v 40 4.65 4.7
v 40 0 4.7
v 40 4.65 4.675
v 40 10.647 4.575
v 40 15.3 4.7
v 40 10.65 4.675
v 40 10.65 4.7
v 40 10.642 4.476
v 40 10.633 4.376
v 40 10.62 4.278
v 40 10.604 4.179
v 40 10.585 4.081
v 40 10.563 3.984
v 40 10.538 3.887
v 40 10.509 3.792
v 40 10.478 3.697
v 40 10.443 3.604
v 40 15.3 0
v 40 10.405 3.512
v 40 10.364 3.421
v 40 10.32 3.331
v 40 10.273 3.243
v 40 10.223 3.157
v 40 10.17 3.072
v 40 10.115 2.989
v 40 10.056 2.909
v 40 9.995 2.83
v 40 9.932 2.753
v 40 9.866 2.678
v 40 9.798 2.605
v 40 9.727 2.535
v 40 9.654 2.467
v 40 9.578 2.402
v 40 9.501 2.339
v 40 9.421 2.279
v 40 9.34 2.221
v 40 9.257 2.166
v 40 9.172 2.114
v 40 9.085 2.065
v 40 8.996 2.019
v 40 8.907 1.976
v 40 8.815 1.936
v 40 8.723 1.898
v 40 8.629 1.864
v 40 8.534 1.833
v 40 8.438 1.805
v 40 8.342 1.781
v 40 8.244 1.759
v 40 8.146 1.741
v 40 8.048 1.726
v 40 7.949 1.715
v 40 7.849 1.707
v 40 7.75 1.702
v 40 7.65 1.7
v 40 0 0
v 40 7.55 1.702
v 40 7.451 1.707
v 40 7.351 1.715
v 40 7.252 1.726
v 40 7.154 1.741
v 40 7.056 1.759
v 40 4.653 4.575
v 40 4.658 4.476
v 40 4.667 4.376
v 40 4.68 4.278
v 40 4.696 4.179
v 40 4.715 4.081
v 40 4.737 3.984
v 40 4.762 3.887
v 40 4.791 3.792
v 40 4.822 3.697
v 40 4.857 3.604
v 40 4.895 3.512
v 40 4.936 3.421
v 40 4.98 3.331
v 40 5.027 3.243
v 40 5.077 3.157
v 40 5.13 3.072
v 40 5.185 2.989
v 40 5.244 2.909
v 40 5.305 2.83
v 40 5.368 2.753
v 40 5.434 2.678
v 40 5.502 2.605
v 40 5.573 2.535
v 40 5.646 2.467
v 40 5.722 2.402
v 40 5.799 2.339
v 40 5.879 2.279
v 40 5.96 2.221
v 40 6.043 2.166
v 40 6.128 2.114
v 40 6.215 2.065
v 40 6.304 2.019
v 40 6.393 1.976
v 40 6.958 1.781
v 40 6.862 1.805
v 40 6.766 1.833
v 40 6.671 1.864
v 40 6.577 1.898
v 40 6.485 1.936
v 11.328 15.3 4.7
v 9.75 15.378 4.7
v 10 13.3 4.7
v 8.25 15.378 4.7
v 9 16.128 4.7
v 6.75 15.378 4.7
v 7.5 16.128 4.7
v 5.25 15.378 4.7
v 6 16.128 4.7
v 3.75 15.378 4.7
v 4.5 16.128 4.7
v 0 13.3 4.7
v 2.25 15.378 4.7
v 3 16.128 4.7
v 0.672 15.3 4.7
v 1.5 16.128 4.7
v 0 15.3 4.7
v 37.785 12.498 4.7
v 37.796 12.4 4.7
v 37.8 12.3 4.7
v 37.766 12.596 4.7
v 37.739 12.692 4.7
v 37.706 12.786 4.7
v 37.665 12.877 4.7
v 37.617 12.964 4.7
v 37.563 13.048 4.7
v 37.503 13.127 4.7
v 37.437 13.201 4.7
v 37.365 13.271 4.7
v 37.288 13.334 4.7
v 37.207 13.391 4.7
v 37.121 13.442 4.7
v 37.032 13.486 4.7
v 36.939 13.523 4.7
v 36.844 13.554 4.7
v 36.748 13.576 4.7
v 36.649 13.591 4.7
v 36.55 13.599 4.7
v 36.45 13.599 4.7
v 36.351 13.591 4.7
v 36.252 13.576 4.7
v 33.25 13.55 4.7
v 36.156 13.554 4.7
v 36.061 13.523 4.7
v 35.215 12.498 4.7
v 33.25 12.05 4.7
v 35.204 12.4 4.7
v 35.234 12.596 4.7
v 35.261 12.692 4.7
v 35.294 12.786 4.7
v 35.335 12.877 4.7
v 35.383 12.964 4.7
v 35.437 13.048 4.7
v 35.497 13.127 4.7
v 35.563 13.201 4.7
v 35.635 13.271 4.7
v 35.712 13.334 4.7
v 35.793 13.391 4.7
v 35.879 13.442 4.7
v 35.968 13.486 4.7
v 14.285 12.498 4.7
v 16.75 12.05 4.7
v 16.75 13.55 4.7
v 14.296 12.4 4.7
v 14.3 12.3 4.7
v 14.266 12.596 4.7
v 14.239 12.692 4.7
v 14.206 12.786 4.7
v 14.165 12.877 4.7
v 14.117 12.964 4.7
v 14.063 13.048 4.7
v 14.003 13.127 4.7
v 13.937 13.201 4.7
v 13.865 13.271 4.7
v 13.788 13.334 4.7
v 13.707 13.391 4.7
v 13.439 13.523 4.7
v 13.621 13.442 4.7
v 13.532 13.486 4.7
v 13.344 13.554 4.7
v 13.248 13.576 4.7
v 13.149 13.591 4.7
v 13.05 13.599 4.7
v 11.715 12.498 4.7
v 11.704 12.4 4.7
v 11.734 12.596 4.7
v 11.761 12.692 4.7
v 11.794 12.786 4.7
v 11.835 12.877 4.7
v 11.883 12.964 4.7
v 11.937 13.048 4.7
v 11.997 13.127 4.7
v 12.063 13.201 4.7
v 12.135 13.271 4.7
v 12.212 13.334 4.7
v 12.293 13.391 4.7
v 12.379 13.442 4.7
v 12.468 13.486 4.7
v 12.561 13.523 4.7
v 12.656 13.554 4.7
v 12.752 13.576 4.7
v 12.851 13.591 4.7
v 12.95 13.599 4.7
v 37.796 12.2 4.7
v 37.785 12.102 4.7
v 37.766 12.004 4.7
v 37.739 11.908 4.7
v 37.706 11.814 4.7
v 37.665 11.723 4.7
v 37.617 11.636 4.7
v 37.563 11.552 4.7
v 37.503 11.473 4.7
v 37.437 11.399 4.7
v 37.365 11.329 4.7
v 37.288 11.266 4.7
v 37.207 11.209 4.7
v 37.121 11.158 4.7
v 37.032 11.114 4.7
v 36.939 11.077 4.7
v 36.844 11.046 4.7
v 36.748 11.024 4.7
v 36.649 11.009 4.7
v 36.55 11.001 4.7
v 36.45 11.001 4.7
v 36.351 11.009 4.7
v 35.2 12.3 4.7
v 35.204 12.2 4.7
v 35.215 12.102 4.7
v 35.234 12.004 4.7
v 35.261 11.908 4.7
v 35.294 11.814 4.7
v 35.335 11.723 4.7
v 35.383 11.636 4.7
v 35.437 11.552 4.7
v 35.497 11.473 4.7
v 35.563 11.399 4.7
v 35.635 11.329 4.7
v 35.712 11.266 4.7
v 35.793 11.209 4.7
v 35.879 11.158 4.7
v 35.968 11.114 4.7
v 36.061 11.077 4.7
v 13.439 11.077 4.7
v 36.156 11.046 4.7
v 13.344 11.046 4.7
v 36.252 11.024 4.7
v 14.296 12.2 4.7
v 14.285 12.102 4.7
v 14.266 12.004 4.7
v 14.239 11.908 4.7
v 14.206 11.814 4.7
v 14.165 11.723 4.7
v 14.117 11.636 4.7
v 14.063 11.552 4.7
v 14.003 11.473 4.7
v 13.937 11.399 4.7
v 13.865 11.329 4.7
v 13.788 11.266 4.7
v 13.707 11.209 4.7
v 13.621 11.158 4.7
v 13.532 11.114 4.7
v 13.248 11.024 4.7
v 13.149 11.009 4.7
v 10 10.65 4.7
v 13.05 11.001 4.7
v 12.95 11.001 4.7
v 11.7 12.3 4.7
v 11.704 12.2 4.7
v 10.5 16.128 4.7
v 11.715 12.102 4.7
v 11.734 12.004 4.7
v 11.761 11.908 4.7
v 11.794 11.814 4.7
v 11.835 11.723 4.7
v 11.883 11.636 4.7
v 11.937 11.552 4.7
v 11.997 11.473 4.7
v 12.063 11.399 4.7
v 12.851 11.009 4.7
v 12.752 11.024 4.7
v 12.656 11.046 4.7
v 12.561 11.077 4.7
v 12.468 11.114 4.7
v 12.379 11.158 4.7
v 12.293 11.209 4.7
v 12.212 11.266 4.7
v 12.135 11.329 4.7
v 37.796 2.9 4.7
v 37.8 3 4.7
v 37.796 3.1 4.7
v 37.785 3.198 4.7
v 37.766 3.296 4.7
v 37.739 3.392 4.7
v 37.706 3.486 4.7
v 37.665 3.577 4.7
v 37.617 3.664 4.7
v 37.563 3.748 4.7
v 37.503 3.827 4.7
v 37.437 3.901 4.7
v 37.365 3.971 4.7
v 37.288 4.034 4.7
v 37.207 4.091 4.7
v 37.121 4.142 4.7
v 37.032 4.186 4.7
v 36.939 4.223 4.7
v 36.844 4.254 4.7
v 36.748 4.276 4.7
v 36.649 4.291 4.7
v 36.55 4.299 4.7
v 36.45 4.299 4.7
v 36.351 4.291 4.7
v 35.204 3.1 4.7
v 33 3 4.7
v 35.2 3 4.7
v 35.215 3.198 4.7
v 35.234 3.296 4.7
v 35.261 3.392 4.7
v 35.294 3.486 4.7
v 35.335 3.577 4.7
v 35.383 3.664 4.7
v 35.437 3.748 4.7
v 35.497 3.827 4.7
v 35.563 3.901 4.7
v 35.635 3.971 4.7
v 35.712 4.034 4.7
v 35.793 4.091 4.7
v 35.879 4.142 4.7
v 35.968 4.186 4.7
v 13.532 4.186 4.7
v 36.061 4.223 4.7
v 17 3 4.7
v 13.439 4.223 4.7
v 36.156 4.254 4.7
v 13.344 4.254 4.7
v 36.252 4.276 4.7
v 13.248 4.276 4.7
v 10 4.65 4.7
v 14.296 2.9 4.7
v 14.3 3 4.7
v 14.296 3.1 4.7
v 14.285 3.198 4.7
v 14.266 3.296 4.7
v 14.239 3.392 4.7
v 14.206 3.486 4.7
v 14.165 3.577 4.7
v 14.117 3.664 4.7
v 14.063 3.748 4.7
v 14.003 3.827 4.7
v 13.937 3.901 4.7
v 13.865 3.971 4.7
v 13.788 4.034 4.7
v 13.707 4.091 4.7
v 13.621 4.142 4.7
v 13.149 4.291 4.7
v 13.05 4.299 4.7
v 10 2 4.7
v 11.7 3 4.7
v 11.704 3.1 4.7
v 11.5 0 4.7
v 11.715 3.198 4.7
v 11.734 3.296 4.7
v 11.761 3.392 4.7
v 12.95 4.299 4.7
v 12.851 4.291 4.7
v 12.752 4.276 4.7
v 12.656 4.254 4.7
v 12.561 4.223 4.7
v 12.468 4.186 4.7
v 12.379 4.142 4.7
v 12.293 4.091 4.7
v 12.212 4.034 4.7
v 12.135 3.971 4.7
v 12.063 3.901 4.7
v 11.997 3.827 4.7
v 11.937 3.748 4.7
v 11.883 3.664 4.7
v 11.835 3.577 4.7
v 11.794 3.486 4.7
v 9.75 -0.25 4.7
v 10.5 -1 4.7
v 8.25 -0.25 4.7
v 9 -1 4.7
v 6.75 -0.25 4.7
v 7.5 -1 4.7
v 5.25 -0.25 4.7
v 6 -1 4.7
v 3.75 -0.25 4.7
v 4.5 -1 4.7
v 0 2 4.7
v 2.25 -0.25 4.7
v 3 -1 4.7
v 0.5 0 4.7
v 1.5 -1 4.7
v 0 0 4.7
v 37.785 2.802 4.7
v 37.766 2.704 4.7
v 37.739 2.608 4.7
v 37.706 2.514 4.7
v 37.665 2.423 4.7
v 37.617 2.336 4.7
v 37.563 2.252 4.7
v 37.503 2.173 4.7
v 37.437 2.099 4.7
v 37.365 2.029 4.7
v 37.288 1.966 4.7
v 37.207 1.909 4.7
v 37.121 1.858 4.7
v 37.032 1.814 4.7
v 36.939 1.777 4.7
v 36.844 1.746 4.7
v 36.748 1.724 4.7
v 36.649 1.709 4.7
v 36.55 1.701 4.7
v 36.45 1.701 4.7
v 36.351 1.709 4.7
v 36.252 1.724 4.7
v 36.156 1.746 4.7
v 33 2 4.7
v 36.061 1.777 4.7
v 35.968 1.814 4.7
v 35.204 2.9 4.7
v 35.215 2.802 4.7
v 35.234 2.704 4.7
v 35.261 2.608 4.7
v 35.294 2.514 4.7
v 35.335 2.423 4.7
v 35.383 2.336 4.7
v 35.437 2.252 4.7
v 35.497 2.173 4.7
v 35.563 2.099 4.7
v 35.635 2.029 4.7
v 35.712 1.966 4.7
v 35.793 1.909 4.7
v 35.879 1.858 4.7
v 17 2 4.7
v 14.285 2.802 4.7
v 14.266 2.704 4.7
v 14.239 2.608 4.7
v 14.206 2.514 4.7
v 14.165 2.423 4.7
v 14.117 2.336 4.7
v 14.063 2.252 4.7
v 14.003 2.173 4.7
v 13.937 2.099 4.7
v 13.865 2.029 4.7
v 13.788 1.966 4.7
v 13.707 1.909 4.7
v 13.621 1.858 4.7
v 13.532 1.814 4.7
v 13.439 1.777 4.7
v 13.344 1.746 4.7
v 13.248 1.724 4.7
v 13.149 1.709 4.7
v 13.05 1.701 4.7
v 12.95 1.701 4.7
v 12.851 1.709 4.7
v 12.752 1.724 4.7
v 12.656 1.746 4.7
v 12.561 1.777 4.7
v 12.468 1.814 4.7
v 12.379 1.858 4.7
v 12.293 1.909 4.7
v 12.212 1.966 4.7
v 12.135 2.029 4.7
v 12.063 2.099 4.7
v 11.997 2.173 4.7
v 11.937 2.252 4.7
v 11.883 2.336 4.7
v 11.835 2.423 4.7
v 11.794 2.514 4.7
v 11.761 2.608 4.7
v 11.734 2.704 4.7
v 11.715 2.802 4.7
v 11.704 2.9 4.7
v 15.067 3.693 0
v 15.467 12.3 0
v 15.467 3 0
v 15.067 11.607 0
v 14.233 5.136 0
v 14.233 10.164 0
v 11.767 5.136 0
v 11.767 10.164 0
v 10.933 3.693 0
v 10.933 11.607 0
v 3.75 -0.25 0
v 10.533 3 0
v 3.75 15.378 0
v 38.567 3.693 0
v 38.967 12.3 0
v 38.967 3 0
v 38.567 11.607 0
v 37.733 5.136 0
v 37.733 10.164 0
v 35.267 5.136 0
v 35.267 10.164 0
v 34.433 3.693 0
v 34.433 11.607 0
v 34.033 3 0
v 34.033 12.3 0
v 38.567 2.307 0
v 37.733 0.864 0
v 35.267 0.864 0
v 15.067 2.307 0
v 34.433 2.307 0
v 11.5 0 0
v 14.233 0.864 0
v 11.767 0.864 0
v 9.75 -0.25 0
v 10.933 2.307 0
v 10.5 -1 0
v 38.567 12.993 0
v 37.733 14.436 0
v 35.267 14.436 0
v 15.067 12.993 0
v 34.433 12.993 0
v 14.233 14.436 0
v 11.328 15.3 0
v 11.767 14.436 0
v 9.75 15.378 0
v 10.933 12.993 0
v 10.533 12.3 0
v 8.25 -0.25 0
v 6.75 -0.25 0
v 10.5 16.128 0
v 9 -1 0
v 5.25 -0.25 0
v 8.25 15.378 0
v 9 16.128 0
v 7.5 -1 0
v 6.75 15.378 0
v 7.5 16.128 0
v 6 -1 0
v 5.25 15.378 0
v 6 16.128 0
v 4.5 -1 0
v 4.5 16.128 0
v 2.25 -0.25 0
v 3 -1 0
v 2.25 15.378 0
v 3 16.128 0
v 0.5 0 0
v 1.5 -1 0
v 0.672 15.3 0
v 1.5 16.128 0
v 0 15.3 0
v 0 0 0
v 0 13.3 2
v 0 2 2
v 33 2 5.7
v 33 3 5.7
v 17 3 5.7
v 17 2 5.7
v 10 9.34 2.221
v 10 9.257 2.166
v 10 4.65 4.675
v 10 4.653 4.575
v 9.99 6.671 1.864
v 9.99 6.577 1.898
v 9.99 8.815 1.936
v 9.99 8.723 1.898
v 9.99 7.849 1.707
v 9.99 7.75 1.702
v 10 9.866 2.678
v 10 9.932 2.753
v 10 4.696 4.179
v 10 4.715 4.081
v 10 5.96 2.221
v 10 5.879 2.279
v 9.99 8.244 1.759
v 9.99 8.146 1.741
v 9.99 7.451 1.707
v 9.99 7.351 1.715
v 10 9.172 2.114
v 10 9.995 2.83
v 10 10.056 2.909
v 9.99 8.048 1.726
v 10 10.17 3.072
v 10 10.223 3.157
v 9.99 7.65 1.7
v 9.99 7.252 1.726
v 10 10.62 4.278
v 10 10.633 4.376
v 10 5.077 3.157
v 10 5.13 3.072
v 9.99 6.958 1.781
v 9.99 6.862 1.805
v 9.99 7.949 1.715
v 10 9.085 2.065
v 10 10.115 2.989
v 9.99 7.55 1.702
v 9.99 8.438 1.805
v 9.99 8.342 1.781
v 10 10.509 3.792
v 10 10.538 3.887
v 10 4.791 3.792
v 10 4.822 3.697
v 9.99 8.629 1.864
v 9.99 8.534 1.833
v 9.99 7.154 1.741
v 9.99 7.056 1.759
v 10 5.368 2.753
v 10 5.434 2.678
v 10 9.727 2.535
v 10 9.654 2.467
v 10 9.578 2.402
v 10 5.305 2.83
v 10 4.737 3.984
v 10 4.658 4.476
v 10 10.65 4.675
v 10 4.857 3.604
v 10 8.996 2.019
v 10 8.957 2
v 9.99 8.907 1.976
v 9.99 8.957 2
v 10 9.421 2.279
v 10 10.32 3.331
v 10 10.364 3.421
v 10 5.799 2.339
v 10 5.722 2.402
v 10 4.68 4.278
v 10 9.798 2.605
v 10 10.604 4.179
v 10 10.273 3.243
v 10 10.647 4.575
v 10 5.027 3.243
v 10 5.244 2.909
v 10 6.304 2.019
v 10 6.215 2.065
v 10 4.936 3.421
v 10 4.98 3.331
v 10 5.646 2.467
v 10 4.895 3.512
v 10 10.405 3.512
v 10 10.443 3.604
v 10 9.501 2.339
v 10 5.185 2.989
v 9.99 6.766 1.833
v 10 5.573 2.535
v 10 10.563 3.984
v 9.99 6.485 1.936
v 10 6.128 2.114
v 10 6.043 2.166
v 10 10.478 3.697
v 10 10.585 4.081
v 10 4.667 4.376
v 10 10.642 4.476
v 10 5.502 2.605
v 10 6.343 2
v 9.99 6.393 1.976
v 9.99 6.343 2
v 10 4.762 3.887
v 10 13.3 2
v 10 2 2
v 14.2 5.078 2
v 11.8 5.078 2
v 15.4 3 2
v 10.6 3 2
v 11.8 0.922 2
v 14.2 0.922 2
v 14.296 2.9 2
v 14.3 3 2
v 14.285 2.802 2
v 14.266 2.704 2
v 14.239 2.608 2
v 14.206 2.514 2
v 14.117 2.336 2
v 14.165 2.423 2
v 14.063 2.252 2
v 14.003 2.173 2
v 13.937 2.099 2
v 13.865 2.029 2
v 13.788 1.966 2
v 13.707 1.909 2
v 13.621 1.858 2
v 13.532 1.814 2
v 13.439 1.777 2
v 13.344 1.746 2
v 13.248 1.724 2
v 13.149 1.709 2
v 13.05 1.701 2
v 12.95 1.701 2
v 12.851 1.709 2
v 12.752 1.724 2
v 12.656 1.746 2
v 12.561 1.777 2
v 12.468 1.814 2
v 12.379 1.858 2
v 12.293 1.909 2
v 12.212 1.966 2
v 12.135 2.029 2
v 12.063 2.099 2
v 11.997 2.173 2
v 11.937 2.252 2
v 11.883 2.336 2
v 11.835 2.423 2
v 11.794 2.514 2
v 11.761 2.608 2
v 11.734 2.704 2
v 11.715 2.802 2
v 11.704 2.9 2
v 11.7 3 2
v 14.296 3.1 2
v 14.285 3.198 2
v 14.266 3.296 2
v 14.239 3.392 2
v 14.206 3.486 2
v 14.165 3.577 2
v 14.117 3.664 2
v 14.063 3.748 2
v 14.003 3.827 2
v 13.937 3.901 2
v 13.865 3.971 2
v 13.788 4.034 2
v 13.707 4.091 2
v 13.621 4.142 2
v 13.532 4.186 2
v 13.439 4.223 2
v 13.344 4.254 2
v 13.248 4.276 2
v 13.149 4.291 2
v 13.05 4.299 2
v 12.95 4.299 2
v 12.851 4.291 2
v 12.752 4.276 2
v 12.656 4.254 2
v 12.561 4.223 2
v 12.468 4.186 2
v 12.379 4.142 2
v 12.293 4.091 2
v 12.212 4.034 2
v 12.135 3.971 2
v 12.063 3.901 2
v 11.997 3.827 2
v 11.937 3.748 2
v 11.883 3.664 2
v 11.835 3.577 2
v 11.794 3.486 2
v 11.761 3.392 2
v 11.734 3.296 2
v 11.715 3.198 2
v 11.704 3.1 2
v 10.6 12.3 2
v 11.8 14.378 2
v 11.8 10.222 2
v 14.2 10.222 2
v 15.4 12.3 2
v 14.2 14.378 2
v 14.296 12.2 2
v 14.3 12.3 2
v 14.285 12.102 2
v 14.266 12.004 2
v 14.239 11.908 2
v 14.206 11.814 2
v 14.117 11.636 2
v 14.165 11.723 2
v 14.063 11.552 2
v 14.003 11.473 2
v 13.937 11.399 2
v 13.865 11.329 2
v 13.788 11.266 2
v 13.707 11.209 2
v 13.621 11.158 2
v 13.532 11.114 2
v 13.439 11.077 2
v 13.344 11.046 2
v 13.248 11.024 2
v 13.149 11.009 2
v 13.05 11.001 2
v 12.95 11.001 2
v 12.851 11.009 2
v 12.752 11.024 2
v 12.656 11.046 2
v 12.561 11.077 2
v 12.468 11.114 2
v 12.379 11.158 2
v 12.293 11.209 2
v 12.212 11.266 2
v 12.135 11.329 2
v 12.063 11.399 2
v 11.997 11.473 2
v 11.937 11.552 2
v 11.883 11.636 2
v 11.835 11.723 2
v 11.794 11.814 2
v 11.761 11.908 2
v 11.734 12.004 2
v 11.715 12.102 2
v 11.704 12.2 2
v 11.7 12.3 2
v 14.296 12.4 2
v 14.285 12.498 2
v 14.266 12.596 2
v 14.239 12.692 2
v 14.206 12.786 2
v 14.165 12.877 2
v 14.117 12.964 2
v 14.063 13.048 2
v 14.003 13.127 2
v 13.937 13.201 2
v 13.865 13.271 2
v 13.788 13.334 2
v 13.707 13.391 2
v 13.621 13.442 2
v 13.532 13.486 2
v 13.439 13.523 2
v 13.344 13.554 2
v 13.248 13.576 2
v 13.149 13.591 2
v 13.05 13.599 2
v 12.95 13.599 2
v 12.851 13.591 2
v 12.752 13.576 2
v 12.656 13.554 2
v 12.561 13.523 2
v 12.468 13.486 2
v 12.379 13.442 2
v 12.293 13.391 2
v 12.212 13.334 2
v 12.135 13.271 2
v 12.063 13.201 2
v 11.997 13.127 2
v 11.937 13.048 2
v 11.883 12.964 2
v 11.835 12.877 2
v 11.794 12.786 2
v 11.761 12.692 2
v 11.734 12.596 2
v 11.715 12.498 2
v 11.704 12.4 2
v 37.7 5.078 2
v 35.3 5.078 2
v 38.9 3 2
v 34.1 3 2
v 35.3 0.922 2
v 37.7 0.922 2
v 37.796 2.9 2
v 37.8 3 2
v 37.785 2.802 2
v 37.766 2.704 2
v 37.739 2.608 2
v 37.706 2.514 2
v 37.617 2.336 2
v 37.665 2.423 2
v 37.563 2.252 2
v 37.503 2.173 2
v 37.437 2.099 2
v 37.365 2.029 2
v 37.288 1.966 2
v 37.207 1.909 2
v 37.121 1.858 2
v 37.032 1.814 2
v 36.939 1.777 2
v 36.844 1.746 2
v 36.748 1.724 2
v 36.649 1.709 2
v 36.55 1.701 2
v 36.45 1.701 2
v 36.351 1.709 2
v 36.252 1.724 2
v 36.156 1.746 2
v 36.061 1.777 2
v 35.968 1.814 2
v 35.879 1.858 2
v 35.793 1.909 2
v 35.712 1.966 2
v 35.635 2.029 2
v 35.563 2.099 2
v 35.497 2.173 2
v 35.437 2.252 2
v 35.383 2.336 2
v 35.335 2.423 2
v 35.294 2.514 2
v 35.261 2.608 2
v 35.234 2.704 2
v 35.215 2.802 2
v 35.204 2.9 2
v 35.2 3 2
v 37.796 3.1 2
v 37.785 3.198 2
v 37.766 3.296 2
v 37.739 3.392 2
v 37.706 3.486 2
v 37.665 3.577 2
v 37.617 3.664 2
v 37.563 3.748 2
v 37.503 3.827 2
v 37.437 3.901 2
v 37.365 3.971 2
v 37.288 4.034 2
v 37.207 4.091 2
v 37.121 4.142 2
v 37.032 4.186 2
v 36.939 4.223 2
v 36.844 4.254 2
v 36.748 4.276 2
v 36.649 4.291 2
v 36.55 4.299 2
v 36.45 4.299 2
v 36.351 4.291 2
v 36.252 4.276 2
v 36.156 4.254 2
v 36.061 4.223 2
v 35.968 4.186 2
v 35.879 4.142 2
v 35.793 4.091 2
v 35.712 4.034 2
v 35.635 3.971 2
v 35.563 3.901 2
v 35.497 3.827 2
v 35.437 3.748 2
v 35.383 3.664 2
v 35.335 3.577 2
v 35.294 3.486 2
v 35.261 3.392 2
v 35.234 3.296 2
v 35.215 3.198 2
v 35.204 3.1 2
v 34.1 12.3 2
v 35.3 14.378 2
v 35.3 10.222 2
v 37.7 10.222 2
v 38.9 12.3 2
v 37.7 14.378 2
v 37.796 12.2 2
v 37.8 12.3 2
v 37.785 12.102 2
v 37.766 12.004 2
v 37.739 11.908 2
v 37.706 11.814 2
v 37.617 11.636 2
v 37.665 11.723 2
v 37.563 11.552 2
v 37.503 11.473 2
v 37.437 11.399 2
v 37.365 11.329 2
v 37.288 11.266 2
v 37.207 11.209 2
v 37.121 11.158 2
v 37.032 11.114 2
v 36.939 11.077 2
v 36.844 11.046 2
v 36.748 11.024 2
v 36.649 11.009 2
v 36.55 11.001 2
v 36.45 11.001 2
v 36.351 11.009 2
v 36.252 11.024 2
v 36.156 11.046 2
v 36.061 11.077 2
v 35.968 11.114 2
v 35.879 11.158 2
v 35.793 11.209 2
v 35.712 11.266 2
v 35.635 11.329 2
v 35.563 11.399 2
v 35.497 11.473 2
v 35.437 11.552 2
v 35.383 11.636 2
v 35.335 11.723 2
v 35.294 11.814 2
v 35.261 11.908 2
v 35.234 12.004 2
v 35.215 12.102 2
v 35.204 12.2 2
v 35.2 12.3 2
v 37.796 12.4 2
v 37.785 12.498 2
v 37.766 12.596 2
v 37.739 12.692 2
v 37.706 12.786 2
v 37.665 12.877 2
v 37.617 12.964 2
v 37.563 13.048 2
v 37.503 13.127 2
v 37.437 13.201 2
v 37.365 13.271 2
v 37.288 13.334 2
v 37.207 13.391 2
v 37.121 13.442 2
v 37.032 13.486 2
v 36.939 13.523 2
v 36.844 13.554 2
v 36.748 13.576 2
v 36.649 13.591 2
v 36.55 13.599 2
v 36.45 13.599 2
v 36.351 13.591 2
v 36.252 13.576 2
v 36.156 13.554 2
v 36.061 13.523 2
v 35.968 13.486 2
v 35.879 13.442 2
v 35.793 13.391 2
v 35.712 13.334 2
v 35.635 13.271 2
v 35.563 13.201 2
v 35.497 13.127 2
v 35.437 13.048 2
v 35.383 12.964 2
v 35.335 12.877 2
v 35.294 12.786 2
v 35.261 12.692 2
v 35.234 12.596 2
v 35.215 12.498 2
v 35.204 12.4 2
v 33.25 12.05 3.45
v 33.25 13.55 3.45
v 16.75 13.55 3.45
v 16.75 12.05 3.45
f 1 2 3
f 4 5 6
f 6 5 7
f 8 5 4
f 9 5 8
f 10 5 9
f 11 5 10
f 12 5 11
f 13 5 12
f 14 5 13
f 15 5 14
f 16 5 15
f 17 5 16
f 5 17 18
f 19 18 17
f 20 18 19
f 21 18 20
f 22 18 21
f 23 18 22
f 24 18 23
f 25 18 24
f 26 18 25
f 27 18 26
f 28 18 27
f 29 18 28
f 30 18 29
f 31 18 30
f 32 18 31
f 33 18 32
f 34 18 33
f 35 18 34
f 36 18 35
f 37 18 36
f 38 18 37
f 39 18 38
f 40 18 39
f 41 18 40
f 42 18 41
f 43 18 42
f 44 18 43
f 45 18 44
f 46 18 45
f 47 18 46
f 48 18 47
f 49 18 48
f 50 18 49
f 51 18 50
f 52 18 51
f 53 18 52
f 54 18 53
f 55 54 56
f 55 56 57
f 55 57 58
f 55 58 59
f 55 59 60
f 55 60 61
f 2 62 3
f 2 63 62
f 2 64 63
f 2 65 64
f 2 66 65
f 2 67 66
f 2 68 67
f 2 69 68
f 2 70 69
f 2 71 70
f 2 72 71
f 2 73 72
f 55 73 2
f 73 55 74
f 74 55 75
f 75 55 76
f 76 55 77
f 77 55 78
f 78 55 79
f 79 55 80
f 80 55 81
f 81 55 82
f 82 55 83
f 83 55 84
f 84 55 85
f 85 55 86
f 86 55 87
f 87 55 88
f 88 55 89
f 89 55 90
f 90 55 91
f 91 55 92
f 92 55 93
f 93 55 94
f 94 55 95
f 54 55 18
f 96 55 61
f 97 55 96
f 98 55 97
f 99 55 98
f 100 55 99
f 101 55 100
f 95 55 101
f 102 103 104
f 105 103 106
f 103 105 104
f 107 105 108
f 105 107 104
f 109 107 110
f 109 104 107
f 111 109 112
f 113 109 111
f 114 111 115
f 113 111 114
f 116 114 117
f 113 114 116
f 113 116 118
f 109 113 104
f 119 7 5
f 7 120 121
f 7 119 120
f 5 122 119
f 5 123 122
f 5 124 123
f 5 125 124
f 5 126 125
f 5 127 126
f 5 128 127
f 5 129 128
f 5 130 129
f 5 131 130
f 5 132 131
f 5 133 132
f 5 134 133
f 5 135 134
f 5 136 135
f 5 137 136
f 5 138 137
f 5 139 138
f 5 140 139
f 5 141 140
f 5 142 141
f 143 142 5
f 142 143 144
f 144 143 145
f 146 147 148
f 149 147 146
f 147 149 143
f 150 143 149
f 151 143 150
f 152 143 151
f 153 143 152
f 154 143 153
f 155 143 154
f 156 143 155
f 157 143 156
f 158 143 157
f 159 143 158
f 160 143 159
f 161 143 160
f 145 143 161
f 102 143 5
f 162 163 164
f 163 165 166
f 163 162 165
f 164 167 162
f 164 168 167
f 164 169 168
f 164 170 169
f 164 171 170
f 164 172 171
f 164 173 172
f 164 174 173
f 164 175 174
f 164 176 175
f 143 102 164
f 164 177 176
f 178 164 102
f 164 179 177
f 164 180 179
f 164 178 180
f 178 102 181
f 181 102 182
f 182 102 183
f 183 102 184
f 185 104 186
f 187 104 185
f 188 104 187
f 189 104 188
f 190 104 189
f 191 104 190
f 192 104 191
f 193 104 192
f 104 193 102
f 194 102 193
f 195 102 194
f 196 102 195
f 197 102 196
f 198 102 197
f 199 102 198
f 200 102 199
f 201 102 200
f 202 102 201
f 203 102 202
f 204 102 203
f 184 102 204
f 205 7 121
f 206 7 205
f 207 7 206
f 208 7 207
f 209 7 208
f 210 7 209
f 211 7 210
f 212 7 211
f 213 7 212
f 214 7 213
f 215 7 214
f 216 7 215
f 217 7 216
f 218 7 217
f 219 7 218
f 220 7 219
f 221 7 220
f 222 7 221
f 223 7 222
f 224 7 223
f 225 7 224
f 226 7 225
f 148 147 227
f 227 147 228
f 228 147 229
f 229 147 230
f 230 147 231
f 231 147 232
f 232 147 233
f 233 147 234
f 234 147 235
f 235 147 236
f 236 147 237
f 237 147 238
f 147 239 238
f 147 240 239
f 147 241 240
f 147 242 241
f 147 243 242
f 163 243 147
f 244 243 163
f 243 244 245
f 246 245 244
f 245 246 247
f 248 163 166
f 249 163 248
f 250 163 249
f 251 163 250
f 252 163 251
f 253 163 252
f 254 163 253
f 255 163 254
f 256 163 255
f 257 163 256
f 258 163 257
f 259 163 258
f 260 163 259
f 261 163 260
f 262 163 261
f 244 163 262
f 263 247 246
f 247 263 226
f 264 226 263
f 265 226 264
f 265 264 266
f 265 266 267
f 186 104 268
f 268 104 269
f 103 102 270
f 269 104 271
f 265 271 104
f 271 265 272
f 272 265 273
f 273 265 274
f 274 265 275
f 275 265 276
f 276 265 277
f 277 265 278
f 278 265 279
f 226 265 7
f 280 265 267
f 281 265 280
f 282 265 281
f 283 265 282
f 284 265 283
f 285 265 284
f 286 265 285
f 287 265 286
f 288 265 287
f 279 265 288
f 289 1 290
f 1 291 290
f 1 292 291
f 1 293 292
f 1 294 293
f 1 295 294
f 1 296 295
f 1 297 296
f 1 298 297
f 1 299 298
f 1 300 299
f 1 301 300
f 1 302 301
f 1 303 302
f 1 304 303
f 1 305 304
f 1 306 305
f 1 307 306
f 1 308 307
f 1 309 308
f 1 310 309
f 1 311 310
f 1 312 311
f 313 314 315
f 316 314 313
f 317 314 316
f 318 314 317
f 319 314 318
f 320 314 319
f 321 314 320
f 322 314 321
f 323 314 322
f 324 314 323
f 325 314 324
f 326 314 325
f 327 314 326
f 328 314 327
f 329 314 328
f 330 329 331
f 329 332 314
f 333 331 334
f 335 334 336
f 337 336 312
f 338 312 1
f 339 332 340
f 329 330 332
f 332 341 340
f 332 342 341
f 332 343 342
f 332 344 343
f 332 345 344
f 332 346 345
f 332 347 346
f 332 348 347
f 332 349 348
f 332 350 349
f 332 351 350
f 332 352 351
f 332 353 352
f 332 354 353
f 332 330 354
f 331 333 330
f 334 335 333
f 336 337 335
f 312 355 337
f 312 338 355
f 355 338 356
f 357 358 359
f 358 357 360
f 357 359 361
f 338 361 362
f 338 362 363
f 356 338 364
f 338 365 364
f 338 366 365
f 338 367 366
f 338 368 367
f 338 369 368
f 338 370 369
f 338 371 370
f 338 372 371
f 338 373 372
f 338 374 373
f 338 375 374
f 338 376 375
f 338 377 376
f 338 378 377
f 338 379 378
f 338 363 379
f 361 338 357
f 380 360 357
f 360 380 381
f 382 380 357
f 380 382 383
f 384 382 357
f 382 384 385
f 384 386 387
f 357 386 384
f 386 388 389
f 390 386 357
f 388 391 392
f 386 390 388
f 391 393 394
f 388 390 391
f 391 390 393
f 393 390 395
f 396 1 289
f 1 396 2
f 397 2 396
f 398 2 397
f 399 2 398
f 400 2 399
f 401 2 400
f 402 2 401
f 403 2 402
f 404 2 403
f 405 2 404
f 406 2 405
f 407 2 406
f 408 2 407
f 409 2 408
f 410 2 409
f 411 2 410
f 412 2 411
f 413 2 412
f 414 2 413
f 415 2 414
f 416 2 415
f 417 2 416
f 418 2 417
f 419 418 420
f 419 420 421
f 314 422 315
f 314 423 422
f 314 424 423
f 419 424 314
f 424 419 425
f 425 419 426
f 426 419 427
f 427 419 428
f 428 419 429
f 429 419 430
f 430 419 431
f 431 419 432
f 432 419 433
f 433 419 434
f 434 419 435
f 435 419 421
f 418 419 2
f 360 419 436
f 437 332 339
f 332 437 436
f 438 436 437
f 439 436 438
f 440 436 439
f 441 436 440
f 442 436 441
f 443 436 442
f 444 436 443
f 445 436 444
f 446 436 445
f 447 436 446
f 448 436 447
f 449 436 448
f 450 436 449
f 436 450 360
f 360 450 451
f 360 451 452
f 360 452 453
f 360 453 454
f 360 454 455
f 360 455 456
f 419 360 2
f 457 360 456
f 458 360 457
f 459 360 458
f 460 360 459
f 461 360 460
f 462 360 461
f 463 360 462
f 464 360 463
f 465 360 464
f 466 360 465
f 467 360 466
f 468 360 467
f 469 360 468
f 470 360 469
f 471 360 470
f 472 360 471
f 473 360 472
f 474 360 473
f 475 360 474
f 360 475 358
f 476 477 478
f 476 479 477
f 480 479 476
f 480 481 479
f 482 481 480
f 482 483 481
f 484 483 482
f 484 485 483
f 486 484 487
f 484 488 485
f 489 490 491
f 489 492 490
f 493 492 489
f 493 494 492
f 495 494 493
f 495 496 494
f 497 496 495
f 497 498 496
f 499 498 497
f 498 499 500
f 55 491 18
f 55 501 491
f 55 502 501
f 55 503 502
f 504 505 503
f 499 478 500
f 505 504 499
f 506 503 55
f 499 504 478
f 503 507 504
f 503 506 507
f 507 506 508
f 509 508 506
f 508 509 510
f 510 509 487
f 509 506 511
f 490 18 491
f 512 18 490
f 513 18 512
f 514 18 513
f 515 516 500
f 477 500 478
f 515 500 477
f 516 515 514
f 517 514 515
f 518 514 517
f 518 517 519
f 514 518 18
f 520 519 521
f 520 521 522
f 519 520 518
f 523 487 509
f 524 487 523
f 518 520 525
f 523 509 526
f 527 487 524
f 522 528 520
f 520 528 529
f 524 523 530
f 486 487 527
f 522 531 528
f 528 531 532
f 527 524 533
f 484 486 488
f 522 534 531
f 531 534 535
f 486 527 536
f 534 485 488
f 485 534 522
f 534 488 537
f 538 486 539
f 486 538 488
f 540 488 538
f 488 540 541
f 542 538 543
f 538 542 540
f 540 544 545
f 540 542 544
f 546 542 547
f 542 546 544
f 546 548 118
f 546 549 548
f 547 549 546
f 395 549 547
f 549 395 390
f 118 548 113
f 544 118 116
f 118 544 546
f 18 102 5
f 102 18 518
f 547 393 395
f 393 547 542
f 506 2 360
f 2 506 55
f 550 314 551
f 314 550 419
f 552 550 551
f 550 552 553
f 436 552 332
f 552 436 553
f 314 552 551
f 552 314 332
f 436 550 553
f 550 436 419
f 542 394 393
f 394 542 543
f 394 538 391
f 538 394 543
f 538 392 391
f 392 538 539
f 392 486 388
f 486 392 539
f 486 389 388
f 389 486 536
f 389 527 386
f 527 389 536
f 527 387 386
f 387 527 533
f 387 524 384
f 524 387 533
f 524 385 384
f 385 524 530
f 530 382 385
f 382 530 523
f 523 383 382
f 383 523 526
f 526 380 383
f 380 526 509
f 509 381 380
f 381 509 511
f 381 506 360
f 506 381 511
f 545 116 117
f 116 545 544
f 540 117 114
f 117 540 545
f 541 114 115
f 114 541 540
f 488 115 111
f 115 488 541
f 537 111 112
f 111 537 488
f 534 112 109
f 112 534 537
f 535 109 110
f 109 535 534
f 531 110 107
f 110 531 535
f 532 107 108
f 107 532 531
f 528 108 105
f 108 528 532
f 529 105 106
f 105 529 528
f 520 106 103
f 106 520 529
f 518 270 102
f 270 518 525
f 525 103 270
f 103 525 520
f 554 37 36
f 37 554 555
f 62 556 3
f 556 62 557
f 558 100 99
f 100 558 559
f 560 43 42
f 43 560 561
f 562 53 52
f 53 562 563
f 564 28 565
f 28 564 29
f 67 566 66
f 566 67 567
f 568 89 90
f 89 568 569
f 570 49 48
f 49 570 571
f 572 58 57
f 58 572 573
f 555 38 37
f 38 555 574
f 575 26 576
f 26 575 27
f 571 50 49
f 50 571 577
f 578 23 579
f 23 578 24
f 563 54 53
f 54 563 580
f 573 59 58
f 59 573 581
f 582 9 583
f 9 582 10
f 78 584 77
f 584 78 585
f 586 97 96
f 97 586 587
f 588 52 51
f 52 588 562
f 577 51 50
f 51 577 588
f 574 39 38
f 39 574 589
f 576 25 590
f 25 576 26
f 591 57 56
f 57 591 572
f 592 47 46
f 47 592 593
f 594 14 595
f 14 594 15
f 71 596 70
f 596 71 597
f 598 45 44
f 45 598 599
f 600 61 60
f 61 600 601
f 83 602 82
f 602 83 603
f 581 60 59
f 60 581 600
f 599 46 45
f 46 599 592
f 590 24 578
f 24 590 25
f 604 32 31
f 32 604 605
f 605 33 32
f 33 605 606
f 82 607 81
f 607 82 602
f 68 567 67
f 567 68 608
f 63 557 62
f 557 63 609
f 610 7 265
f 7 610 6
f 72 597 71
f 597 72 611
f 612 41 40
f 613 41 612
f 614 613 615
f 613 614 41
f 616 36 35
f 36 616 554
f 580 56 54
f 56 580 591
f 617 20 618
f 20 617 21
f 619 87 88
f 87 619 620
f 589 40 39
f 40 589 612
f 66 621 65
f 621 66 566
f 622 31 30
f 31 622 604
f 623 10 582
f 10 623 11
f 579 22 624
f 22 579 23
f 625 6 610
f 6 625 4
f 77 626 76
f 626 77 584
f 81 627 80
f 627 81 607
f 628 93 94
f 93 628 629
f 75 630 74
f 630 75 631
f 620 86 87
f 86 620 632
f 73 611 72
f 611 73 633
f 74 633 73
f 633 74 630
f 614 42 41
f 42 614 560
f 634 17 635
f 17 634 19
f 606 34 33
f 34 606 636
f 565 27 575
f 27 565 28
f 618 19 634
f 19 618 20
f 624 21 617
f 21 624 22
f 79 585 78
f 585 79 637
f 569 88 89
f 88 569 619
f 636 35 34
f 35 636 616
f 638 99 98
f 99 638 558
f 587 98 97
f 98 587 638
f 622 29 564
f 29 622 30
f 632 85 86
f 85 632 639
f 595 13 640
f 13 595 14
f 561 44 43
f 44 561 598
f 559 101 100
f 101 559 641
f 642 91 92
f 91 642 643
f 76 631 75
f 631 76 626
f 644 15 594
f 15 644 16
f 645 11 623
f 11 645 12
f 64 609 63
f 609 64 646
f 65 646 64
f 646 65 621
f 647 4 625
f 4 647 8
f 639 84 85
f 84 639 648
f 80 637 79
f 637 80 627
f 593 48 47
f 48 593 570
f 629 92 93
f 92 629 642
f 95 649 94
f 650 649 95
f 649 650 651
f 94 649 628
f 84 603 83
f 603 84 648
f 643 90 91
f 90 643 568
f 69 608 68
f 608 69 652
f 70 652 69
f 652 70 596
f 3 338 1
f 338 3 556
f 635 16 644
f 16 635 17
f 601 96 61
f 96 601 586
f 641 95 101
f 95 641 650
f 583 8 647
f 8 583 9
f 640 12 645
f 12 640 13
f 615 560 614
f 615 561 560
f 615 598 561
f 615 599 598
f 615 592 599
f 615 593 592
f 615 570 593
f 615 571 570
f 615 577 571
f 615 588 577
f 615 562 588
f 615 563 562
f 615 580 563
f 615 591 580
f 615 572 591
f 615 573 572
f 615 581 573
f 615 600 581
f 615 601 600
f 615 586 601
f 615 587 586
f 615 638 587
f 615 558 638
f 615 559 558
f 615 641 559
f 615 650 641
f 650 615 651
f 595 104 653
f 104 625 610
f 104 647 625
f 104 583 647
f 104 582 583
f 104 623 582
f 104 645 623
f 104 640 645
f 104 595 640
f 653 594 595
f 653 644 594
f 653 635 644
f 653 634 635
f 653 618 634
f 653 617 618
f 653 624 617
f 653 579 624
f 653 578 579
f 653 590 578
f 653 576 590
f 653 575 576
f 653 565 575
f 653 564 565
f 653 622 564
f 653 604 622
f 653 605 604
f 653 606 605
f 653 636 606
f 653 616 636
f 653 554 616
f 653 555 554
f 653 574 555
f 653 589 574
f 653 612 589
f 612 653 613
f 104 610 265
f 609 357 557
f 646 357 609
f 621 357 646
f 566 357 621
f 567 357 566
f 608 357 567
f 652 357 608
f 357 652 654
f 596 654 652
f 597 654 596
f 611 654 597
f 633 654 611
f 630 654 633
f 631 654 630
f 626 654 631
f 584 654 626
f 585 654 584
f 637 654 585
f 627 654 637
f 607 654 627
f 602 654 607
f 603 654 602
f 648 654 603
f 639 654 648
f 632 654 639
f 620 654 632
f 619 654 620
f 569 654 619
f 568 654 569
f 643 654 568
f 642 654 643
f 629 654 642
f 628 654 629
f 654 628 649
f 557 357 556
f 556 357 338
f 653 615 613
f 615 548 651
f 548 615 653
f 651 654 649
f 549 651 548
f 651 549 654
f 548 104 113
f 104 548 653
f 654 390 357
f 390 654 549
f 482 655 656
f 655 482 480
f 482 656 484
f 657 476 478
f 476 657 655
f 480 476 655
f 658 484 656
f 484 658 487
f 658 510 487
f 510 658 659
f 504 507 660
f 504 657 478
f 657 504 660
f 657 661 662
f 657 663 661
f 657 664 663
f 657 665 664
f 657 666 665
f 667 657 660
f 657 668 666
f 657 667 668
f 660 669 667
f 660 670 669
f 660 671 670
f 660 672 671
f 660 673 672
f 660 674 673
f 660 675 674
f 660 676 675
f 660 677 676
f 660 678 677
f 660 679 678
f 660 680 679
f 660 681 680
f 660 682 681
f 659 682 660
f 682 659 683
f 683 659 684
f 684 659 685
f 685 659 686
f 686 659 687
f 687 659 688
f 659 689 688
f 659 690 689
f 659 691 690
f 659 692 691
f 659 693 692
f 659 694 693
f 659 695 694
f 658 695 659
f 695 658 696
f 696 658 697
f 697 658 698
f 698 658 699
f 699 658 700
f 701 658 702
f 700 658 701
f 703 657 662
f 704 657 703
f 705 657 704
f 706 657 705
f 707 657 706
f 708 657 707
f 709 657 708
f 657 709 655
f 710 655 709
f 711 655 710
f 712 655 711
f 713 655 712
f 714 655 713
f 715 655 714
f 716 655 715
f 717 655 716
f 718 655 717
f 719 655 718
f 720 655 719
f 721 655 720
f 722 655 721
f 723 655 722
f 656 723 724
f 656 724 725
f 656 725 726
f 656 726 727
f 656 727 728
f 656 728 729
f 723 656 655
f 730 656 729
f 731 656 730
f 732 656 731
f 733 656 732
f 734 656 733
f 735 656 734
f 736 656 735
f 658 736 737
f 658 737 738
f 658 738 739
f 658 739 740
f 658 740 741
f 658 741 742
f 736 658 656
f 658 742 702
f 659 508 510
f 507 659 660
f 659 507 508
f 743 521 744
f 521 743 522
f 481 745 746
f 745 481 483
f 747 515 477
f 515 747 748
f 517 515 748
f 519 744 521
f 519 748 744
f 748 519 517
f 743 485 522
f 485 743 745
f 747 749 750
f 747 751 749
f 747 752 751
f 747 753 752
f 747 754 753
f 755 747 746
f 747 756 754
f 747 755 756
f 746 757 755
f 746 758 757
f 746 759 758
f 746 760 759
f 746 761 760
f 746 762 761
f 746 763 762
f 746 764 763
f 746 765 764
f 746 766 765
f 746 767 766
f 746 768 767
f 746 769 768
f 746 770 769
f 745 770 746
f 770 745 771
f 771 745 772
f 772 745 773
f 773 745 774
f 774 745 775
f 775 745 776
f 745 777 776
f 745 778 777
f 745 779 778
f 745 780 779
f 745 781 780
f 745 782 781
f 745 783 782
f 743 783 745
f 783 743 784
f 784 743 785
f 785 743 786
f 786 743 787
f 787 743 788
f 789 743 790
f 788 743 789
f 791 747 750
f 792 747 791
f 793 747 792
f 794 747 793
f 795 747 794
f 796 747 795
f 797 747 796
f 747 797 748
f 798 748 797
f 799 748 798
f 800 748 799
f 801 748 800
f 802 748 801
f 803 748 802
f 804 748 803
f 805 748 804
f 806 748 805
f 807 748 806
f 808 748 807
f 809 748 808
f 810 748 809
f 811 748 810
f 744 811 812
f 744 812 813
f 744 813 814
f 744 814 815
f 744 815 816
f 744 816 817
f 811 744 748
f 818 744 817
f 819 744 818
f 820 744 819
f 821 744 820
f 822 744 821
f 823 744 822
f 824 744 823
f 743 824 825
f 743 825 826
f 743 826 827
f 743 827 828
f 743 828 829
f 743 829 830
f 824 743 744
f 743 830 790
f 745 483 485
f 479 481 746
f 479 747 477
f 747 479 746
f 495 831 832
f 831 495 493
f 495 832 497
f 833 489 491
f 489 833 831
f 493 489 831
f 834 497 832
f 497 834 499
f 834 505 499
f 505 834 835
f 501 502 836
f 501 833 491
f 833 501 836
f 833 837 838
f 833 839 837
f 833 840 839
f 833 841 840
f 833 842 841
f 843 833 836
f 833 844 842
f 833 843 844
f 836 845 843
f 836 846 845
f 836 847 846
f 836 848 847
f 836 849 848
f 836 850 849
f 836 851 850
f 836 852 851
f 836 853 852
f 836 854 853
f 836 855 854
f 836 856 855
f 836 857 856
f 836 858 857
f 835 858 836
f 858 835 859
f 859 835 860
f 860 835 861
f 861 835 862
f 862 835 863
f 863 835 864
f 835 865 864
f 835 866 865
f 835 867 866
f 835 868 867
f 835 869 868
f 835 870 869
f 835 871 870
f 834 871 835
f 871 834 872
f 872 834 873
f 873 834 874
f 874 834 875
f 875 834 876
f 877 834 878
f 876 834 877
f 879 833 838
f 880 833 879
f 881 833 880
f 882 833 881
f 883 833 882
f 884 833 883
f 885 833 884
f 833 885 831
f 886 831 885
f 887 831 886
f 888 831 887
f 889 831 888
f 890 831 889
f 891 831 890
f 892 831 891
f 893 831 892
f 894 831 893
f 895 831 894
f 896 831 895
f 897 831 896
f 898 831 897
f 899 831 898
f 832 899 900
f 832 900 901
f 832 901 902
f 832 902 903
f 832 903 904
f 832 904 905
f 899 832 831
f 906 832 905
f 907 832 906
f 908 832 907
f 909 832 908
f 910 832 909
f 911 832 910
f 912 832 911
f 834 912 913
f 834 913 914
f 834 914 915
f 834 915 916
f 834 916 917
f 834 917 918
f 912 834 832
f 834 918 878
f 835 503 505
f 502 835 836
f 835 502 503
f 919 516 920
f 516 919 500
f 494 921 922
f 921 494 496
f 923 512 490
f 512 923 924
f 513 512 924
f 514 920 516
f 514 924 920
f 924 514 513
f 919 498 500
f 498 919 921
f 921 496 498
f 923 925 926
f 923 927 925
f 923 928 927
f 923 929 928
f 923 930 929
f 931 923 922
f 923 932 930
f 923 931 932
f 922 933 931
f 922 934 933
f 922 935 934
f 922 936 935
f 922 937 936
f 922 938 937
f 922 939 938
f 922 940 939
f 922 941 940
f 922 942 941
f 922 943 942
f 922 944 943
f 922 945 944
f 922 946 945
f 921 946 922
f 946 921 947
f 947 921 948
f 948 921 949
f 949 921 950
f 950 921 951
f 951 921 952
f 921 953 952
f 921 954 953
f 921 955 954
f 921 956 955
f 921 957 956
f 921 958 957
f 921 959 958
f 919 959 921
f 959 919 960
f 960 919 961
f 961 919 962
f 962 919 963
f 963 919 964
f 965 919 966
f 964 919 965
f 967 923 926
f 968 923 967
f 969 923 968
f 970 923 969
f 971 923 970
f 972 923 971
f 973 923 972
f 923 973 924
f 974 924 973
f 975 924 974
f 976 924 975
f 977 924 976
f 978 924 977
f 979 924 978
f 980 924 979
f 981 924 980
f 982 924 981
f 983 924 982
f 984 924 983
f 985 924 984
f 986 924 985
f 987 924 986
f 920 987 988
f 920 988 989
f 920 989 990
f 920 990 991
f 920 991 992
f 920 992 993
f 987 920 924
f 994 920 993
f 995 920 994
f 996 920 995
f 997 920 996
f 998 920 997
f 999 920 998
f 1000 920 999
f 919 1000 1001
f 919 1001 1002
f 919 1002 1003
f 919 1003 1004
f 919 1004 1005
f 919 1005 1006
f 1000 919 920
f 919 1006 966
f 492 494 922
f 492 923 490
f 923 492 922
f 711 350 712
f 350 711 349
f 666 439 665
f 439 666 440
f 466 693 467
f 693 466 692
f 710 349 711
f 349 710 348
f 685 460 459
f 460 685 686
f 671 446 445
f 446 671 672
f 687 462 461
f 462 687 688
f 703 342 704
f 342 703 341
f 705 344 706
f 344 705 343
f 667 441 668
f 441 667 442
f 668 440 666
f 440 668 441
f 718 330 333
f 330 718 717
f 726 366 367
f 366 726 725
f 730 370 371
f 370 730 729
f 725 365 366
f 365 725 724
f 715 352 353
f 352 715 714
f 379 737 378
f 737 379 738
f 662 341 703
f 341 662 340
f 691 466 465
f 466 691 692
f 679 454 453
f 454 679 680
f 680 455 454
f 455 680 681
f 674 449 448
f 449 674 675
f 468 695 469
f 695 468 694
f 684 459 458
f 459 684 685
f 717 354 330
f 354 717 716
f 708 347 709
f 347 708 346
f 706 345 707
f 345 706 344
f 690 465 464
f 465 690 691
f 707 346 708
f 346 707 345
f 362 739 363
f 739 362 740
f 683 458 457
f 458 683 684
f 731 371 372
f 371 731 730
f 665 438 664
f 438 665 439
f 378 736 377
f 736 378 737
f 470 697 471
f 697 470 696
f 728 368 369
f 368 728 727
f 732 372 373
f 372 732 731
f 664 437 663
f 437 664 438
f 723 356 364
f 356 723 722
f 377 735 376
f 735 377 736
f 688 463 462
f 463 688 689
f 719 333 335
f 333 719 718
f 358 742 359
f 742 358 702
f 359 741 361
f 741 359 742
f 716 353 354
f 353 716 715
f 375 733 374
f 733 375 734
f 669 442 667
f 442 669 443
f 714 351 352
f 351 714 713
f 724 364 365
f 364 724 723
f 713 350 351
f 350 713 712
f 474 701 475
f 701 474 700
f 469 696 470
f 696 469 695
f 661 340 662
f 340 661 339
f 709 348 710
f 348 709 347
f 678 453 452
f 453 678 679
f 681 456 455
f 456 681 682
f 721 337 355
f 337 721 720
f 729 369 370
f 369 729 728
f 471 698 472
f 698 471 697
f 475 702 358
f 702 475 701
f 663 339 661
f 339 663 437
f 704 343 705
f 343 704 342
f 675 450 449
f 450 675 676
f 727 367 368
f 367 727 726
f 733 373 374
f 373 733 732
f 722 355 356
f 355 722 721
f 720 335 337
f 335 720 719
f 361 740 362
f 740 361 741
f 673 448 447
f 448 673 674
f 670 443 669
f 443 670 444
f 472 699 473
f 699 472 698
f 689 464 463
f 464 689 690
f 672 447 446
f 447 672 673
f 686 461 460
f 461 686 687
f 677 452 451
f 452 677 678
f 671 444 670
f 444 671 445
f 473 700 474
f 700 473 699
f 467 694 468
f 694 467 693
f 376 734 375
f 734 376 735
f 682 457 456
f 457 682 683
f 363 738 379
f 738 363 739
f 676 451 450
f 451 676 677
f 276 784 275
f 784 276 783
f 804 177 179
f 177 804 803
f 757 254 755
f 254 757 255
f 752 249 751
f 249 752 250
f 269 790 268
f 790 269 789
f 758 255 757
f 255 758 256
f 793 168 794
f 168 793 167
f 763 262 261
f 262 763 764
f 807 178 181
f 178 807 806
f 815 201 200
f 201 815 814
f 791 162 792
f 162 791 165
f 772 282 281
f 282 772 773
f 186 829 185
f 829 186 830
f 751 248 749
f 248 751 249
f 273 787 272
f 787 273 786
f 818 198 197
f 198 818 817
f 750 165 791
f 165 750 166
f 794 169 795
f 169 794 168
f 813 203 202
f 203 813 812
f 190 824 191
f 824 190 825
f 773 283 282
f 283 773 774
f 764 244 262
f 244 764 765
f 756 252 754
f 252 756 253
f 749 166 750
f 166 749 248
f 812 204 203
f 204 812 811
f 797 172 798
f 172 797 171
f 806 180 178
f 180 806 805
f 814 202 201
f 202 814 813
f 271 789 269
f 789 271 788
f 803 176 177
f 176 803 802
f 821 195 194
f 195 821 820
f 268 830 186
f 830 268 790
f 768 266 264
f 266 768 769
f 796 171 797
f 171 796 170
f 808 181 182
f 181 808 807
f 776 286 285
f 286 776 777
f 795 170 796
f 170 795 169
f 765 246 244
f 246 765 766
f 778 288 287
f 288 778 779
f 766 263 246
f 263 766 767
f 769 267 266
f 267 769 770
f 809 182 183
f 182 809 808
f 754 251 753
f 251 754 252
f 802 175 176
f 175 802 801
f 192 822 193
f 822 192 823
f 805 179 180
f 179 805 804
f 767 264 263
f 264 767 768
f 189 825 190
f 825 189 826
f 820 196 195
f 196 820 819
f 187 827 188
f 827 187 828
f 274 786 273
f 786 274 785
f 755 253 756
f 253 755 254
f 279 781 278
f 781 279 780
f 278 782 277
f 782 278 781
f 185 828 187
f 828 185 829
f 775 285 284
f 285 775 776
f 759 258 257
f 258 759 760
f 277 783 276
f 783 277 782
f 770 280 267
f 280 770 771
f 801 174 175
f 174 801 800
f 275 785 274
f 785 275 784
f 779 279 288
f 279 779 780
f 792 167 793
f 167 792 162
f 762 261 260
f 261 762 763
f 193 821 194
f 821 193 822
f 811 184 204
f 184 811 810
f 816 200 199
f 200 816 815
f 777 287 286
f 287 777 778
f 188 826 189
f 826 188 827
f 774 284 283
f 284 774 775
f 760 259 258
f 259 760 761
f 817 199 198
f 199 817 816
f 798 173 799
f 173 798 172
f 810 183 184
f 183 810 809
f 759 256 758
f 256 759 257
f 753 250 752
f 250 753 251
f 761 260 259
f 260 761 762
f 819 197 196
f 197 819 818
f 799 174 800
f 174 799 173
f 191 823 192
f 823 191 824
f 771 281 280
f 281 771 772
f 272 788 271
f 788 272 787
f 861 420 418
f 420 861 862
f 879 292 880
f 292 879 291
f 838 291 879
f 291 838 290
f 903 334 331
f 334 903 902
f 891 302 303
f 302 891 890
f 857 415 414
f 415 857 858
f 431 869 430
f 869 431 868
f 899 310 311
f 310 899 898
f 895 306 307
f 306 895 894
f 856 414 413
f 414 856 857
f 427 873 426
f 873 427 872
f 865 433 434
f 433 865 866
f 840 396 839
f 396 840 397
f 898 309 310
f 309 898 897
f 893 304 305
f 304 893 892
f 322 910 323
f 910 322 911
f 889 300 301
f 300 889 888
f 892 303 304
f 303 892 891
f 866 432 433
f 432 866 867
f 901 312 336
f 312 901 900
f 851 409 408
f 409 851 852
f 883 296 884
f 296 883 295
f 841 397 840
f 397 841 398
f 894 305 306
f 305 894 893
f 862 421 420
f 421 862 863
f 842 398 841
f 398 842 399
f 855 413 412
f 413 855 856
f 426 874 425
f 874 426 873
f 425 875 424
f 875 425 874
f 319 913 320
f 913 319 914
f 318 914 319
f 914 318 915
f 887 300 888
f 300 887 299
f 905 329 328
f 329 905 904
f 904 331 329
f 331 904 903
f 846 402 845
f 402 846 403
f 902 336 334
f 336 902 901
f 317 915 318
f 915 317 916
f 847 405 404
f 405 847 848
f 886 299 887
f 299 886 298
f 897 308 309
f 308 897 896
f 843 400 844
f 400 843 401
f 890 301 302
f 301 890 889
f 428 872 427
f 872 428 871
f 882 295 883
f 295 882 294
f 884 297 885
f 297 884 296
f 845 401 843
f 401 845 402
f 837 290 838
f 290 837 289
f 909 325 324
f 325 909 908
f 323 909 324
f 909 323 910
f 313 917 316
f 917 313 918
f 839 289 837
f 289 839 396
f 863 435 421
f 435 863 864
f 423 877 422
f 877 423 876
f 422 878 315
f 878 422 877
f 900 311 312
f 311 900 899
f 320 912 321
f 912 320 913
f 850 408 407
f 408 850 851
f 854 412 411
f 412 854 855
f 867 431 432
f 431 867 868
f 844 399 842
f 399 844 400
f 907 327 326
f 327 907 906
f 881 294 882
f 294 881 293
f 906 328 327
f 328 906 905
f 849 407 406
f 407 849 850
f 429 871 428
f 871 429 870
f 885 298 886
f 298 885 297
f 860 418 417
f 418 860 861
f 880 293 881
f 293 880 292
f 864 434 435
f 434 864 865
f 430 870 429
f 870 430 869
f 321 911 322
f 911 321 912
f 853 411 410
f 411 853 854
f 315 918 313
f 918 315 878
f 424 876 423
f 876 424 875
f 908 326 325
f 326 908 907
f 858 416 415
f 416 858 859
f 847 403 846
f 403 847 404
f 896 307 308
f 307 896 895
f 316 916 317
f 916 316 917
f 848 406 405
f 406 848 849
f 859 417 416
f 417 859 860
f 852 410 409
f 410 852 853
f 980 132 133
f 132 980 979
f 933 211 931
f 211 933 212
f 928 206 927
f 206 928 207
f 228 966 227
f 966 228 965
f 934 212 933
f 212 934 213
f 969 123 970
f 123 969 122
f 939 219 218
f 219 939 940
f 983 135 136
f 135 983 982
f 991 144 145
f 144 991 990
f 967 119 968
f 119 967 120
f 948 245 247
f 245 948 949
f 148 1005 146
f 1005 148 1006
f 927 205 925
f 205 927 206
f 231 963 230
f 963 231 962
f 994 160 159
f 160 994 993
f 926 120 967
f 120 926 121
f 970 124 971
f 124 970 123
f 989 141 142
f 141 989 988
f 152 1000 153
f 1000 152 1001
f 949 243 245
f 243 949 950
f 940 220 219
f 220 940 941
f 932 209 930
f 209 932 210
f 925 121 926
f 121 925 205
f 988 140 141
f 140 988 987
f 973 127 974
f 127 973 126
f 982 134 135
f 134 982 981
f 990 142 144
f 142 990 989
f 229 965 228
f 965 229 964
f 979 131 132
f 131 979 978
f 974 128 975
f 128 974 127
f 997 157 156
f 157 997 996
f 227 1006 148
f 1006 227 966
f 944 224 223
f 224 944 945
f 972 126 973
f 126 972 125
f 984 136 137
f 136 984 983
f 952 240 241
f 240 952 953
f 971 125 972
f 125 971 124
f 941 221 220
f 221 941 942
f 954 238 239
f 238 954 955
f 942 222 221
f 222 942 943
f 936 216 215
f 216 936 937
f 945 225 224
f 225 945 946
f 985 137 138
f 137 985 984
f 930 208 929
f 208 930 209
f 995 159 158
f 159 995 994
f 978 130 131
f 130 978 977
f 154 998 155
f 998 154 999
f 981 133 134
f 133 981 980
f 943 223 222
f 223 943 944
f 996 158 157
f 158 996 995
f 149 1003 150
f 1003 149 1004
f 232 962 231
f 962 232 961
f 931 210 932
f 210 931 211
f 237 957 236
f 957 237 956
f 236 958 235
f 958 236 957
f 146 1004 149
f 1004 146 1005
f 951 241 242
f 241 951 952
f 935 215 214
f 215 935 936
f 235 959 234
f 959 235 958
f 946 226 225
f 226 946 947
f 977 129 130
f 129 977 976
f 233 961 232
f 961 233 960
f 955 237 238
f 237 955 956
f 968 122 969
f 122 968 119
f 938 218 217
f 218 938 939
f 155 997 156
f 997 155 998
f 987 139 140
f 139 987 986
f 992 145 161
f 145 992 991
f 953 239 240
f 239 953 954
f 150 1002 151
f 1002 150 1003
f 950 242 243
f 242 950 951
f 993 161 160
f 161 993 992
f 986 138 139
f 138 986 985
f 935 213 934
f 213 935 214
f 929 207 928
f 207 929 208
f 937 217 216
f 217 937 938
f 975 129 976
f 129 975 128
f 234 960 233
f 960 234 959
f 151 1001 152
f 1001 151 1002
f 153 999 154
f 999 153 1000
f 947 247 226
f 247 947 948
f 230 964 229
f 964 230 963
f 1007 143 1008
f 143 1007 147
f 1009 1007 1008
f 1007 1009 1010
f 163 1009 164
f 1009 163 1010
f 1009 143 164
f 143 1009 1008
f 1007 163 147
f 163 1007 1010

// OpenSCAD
//
// The MIT License (MIT)
//
// Copyright (c) 2025 Lukasz Ronka
//
// Permission is hereby granted, free of charge, to any person obtaining a copy
// of this software and associated documentation files (the "Software"), to deal
// in the Software without restriction, including without limitation the rights
// to use, copy, modify, merge, publish, distribute, sublicense, and/or sell
// copies of the Software, and to permit persons to whom the Software is
// furnished to do so, subject to the following conditions:
//
// The above copyright notice and this permission notice shall be included in
// all copies or substantial portions of the Software.
//
// THE SOFTWARE IS PROVIDED "AS IS", WITHOUT WARRANTY OF ANY KIND, EXPRESS OR
// IMPLIED, INCLUDING BUT NOT LIMITED TO THE WARRANTIES OF MERCHANTABILITY,
// FITNESS FOR A PARTICULAR PURPOSE AND NONINFRINGEMENT. IN NO EVENT SHALL THE
// AUTHORS OR COPYRIGHT HOLDERS BE LIABLE FOR ANY CLAIM, DAMAGES OR OTHER
// LIABILITY, WHETHER IN AN ACTION OF CONTRACT, TORT OR OTHERWISE, ARISING FROM,
// OUT OF OR IN CONNECTION WITH THE SOFTWARE OR THE USE OR OTHER DEALINGS IN
// THE SOFTWARE.
//

$fa=1;
$fs=0.1;

difference(){
    union(){
        cube([40, 15.3, 4.7]);
        translate([17, 2, 3.7]) cube([16, 1, 2]);
        
        translate([1.5, -1, 0]) rotate([0, 0, 45]) cube([2, 2, 4.7]);
        translate([3, -1, 0]) rotate([0, 0, 45]) cube([2, 2, 4.7]);
        translate([4.5, -1, 0]) rotate([0, 0, 45]) cube([2, 2, 4.7]);
        translate([6, -1, 0]) rotate([0, 0, 45]) cube([2, 2, 4.7]);
        translate([7.5, -1, 0]) rotate([0, 0, 45]) cube([2, 2, 4.7]);
        translate([9, -1, 0]) rotate([0, 0, 45]) cube([2, 2, 4.7]);
        translate([10.5, -1, 0]) rotate([0, 0, 45]) cube([2, 2, 4.7]);

        translate([1.5, 13.3, 0]) rotate([0, 0, 45]) cube([2, 2, 4.7]);
        translate([3, 13.3, 0]) rotate([0, 0, 45]) cube([2, 2, 4.7]);
        translate([4.5, 13.3, 0]) rotate([0, 0, 45]) cube([2, 2, 4.7]);
        translate([6, 13.3, 0]) rotate([0, 0, 45]) cube([2, 2, 4.7]);
        translate([7.5, 13.3, 0]) rotate([0, 0, 45]) cube([2, 2, 4.7]);
        translate([9, 13.3, 0]) rotate([0, 0, 45]) cube([2, 2, 4.7]);
        translate([10.5, 13.3, 0]) rotate([0, 0, 45]) cube([2, 2, 4.7]);

    }
    translate([9.99, 15.3/2, 4.7]) rotate([0, 90, 0]) cylinder(50, 3, 3);
    translate([-1, 2, 2]) cube([11, 11.3, 5.4]);
    //4 holes for nuts
    translate([13, 3, -1]) cylinder(3, 2.5, 2.4, $fa=60);
    translate([13, 12.3, -1]) cylinder(3, 2.5, 2.4, $fa=60);
    translate([36.5, 3, -1]) cylinder(3, 2.5, 2.4, $fa=60);
    translate([36.5, 12.3, -1]) cylinder(3, 2.5, 2.4, $fa=60);
    
    translate([13,3,-1]) cylinder(25, 1.3, 1.3);
    translate([13,12.3,-1]) cylinder(25, 1.3, 1.3);
    translate([36.5,3,-1]) cylinder(25, 1.3, 1.3);
    translate([36.5,12.3,-1]) cylinder(25, 1.3, 1.3);

    translate([16.75, 12.05, 3.45]) cube([16.5, 1.5, 2]);

}
